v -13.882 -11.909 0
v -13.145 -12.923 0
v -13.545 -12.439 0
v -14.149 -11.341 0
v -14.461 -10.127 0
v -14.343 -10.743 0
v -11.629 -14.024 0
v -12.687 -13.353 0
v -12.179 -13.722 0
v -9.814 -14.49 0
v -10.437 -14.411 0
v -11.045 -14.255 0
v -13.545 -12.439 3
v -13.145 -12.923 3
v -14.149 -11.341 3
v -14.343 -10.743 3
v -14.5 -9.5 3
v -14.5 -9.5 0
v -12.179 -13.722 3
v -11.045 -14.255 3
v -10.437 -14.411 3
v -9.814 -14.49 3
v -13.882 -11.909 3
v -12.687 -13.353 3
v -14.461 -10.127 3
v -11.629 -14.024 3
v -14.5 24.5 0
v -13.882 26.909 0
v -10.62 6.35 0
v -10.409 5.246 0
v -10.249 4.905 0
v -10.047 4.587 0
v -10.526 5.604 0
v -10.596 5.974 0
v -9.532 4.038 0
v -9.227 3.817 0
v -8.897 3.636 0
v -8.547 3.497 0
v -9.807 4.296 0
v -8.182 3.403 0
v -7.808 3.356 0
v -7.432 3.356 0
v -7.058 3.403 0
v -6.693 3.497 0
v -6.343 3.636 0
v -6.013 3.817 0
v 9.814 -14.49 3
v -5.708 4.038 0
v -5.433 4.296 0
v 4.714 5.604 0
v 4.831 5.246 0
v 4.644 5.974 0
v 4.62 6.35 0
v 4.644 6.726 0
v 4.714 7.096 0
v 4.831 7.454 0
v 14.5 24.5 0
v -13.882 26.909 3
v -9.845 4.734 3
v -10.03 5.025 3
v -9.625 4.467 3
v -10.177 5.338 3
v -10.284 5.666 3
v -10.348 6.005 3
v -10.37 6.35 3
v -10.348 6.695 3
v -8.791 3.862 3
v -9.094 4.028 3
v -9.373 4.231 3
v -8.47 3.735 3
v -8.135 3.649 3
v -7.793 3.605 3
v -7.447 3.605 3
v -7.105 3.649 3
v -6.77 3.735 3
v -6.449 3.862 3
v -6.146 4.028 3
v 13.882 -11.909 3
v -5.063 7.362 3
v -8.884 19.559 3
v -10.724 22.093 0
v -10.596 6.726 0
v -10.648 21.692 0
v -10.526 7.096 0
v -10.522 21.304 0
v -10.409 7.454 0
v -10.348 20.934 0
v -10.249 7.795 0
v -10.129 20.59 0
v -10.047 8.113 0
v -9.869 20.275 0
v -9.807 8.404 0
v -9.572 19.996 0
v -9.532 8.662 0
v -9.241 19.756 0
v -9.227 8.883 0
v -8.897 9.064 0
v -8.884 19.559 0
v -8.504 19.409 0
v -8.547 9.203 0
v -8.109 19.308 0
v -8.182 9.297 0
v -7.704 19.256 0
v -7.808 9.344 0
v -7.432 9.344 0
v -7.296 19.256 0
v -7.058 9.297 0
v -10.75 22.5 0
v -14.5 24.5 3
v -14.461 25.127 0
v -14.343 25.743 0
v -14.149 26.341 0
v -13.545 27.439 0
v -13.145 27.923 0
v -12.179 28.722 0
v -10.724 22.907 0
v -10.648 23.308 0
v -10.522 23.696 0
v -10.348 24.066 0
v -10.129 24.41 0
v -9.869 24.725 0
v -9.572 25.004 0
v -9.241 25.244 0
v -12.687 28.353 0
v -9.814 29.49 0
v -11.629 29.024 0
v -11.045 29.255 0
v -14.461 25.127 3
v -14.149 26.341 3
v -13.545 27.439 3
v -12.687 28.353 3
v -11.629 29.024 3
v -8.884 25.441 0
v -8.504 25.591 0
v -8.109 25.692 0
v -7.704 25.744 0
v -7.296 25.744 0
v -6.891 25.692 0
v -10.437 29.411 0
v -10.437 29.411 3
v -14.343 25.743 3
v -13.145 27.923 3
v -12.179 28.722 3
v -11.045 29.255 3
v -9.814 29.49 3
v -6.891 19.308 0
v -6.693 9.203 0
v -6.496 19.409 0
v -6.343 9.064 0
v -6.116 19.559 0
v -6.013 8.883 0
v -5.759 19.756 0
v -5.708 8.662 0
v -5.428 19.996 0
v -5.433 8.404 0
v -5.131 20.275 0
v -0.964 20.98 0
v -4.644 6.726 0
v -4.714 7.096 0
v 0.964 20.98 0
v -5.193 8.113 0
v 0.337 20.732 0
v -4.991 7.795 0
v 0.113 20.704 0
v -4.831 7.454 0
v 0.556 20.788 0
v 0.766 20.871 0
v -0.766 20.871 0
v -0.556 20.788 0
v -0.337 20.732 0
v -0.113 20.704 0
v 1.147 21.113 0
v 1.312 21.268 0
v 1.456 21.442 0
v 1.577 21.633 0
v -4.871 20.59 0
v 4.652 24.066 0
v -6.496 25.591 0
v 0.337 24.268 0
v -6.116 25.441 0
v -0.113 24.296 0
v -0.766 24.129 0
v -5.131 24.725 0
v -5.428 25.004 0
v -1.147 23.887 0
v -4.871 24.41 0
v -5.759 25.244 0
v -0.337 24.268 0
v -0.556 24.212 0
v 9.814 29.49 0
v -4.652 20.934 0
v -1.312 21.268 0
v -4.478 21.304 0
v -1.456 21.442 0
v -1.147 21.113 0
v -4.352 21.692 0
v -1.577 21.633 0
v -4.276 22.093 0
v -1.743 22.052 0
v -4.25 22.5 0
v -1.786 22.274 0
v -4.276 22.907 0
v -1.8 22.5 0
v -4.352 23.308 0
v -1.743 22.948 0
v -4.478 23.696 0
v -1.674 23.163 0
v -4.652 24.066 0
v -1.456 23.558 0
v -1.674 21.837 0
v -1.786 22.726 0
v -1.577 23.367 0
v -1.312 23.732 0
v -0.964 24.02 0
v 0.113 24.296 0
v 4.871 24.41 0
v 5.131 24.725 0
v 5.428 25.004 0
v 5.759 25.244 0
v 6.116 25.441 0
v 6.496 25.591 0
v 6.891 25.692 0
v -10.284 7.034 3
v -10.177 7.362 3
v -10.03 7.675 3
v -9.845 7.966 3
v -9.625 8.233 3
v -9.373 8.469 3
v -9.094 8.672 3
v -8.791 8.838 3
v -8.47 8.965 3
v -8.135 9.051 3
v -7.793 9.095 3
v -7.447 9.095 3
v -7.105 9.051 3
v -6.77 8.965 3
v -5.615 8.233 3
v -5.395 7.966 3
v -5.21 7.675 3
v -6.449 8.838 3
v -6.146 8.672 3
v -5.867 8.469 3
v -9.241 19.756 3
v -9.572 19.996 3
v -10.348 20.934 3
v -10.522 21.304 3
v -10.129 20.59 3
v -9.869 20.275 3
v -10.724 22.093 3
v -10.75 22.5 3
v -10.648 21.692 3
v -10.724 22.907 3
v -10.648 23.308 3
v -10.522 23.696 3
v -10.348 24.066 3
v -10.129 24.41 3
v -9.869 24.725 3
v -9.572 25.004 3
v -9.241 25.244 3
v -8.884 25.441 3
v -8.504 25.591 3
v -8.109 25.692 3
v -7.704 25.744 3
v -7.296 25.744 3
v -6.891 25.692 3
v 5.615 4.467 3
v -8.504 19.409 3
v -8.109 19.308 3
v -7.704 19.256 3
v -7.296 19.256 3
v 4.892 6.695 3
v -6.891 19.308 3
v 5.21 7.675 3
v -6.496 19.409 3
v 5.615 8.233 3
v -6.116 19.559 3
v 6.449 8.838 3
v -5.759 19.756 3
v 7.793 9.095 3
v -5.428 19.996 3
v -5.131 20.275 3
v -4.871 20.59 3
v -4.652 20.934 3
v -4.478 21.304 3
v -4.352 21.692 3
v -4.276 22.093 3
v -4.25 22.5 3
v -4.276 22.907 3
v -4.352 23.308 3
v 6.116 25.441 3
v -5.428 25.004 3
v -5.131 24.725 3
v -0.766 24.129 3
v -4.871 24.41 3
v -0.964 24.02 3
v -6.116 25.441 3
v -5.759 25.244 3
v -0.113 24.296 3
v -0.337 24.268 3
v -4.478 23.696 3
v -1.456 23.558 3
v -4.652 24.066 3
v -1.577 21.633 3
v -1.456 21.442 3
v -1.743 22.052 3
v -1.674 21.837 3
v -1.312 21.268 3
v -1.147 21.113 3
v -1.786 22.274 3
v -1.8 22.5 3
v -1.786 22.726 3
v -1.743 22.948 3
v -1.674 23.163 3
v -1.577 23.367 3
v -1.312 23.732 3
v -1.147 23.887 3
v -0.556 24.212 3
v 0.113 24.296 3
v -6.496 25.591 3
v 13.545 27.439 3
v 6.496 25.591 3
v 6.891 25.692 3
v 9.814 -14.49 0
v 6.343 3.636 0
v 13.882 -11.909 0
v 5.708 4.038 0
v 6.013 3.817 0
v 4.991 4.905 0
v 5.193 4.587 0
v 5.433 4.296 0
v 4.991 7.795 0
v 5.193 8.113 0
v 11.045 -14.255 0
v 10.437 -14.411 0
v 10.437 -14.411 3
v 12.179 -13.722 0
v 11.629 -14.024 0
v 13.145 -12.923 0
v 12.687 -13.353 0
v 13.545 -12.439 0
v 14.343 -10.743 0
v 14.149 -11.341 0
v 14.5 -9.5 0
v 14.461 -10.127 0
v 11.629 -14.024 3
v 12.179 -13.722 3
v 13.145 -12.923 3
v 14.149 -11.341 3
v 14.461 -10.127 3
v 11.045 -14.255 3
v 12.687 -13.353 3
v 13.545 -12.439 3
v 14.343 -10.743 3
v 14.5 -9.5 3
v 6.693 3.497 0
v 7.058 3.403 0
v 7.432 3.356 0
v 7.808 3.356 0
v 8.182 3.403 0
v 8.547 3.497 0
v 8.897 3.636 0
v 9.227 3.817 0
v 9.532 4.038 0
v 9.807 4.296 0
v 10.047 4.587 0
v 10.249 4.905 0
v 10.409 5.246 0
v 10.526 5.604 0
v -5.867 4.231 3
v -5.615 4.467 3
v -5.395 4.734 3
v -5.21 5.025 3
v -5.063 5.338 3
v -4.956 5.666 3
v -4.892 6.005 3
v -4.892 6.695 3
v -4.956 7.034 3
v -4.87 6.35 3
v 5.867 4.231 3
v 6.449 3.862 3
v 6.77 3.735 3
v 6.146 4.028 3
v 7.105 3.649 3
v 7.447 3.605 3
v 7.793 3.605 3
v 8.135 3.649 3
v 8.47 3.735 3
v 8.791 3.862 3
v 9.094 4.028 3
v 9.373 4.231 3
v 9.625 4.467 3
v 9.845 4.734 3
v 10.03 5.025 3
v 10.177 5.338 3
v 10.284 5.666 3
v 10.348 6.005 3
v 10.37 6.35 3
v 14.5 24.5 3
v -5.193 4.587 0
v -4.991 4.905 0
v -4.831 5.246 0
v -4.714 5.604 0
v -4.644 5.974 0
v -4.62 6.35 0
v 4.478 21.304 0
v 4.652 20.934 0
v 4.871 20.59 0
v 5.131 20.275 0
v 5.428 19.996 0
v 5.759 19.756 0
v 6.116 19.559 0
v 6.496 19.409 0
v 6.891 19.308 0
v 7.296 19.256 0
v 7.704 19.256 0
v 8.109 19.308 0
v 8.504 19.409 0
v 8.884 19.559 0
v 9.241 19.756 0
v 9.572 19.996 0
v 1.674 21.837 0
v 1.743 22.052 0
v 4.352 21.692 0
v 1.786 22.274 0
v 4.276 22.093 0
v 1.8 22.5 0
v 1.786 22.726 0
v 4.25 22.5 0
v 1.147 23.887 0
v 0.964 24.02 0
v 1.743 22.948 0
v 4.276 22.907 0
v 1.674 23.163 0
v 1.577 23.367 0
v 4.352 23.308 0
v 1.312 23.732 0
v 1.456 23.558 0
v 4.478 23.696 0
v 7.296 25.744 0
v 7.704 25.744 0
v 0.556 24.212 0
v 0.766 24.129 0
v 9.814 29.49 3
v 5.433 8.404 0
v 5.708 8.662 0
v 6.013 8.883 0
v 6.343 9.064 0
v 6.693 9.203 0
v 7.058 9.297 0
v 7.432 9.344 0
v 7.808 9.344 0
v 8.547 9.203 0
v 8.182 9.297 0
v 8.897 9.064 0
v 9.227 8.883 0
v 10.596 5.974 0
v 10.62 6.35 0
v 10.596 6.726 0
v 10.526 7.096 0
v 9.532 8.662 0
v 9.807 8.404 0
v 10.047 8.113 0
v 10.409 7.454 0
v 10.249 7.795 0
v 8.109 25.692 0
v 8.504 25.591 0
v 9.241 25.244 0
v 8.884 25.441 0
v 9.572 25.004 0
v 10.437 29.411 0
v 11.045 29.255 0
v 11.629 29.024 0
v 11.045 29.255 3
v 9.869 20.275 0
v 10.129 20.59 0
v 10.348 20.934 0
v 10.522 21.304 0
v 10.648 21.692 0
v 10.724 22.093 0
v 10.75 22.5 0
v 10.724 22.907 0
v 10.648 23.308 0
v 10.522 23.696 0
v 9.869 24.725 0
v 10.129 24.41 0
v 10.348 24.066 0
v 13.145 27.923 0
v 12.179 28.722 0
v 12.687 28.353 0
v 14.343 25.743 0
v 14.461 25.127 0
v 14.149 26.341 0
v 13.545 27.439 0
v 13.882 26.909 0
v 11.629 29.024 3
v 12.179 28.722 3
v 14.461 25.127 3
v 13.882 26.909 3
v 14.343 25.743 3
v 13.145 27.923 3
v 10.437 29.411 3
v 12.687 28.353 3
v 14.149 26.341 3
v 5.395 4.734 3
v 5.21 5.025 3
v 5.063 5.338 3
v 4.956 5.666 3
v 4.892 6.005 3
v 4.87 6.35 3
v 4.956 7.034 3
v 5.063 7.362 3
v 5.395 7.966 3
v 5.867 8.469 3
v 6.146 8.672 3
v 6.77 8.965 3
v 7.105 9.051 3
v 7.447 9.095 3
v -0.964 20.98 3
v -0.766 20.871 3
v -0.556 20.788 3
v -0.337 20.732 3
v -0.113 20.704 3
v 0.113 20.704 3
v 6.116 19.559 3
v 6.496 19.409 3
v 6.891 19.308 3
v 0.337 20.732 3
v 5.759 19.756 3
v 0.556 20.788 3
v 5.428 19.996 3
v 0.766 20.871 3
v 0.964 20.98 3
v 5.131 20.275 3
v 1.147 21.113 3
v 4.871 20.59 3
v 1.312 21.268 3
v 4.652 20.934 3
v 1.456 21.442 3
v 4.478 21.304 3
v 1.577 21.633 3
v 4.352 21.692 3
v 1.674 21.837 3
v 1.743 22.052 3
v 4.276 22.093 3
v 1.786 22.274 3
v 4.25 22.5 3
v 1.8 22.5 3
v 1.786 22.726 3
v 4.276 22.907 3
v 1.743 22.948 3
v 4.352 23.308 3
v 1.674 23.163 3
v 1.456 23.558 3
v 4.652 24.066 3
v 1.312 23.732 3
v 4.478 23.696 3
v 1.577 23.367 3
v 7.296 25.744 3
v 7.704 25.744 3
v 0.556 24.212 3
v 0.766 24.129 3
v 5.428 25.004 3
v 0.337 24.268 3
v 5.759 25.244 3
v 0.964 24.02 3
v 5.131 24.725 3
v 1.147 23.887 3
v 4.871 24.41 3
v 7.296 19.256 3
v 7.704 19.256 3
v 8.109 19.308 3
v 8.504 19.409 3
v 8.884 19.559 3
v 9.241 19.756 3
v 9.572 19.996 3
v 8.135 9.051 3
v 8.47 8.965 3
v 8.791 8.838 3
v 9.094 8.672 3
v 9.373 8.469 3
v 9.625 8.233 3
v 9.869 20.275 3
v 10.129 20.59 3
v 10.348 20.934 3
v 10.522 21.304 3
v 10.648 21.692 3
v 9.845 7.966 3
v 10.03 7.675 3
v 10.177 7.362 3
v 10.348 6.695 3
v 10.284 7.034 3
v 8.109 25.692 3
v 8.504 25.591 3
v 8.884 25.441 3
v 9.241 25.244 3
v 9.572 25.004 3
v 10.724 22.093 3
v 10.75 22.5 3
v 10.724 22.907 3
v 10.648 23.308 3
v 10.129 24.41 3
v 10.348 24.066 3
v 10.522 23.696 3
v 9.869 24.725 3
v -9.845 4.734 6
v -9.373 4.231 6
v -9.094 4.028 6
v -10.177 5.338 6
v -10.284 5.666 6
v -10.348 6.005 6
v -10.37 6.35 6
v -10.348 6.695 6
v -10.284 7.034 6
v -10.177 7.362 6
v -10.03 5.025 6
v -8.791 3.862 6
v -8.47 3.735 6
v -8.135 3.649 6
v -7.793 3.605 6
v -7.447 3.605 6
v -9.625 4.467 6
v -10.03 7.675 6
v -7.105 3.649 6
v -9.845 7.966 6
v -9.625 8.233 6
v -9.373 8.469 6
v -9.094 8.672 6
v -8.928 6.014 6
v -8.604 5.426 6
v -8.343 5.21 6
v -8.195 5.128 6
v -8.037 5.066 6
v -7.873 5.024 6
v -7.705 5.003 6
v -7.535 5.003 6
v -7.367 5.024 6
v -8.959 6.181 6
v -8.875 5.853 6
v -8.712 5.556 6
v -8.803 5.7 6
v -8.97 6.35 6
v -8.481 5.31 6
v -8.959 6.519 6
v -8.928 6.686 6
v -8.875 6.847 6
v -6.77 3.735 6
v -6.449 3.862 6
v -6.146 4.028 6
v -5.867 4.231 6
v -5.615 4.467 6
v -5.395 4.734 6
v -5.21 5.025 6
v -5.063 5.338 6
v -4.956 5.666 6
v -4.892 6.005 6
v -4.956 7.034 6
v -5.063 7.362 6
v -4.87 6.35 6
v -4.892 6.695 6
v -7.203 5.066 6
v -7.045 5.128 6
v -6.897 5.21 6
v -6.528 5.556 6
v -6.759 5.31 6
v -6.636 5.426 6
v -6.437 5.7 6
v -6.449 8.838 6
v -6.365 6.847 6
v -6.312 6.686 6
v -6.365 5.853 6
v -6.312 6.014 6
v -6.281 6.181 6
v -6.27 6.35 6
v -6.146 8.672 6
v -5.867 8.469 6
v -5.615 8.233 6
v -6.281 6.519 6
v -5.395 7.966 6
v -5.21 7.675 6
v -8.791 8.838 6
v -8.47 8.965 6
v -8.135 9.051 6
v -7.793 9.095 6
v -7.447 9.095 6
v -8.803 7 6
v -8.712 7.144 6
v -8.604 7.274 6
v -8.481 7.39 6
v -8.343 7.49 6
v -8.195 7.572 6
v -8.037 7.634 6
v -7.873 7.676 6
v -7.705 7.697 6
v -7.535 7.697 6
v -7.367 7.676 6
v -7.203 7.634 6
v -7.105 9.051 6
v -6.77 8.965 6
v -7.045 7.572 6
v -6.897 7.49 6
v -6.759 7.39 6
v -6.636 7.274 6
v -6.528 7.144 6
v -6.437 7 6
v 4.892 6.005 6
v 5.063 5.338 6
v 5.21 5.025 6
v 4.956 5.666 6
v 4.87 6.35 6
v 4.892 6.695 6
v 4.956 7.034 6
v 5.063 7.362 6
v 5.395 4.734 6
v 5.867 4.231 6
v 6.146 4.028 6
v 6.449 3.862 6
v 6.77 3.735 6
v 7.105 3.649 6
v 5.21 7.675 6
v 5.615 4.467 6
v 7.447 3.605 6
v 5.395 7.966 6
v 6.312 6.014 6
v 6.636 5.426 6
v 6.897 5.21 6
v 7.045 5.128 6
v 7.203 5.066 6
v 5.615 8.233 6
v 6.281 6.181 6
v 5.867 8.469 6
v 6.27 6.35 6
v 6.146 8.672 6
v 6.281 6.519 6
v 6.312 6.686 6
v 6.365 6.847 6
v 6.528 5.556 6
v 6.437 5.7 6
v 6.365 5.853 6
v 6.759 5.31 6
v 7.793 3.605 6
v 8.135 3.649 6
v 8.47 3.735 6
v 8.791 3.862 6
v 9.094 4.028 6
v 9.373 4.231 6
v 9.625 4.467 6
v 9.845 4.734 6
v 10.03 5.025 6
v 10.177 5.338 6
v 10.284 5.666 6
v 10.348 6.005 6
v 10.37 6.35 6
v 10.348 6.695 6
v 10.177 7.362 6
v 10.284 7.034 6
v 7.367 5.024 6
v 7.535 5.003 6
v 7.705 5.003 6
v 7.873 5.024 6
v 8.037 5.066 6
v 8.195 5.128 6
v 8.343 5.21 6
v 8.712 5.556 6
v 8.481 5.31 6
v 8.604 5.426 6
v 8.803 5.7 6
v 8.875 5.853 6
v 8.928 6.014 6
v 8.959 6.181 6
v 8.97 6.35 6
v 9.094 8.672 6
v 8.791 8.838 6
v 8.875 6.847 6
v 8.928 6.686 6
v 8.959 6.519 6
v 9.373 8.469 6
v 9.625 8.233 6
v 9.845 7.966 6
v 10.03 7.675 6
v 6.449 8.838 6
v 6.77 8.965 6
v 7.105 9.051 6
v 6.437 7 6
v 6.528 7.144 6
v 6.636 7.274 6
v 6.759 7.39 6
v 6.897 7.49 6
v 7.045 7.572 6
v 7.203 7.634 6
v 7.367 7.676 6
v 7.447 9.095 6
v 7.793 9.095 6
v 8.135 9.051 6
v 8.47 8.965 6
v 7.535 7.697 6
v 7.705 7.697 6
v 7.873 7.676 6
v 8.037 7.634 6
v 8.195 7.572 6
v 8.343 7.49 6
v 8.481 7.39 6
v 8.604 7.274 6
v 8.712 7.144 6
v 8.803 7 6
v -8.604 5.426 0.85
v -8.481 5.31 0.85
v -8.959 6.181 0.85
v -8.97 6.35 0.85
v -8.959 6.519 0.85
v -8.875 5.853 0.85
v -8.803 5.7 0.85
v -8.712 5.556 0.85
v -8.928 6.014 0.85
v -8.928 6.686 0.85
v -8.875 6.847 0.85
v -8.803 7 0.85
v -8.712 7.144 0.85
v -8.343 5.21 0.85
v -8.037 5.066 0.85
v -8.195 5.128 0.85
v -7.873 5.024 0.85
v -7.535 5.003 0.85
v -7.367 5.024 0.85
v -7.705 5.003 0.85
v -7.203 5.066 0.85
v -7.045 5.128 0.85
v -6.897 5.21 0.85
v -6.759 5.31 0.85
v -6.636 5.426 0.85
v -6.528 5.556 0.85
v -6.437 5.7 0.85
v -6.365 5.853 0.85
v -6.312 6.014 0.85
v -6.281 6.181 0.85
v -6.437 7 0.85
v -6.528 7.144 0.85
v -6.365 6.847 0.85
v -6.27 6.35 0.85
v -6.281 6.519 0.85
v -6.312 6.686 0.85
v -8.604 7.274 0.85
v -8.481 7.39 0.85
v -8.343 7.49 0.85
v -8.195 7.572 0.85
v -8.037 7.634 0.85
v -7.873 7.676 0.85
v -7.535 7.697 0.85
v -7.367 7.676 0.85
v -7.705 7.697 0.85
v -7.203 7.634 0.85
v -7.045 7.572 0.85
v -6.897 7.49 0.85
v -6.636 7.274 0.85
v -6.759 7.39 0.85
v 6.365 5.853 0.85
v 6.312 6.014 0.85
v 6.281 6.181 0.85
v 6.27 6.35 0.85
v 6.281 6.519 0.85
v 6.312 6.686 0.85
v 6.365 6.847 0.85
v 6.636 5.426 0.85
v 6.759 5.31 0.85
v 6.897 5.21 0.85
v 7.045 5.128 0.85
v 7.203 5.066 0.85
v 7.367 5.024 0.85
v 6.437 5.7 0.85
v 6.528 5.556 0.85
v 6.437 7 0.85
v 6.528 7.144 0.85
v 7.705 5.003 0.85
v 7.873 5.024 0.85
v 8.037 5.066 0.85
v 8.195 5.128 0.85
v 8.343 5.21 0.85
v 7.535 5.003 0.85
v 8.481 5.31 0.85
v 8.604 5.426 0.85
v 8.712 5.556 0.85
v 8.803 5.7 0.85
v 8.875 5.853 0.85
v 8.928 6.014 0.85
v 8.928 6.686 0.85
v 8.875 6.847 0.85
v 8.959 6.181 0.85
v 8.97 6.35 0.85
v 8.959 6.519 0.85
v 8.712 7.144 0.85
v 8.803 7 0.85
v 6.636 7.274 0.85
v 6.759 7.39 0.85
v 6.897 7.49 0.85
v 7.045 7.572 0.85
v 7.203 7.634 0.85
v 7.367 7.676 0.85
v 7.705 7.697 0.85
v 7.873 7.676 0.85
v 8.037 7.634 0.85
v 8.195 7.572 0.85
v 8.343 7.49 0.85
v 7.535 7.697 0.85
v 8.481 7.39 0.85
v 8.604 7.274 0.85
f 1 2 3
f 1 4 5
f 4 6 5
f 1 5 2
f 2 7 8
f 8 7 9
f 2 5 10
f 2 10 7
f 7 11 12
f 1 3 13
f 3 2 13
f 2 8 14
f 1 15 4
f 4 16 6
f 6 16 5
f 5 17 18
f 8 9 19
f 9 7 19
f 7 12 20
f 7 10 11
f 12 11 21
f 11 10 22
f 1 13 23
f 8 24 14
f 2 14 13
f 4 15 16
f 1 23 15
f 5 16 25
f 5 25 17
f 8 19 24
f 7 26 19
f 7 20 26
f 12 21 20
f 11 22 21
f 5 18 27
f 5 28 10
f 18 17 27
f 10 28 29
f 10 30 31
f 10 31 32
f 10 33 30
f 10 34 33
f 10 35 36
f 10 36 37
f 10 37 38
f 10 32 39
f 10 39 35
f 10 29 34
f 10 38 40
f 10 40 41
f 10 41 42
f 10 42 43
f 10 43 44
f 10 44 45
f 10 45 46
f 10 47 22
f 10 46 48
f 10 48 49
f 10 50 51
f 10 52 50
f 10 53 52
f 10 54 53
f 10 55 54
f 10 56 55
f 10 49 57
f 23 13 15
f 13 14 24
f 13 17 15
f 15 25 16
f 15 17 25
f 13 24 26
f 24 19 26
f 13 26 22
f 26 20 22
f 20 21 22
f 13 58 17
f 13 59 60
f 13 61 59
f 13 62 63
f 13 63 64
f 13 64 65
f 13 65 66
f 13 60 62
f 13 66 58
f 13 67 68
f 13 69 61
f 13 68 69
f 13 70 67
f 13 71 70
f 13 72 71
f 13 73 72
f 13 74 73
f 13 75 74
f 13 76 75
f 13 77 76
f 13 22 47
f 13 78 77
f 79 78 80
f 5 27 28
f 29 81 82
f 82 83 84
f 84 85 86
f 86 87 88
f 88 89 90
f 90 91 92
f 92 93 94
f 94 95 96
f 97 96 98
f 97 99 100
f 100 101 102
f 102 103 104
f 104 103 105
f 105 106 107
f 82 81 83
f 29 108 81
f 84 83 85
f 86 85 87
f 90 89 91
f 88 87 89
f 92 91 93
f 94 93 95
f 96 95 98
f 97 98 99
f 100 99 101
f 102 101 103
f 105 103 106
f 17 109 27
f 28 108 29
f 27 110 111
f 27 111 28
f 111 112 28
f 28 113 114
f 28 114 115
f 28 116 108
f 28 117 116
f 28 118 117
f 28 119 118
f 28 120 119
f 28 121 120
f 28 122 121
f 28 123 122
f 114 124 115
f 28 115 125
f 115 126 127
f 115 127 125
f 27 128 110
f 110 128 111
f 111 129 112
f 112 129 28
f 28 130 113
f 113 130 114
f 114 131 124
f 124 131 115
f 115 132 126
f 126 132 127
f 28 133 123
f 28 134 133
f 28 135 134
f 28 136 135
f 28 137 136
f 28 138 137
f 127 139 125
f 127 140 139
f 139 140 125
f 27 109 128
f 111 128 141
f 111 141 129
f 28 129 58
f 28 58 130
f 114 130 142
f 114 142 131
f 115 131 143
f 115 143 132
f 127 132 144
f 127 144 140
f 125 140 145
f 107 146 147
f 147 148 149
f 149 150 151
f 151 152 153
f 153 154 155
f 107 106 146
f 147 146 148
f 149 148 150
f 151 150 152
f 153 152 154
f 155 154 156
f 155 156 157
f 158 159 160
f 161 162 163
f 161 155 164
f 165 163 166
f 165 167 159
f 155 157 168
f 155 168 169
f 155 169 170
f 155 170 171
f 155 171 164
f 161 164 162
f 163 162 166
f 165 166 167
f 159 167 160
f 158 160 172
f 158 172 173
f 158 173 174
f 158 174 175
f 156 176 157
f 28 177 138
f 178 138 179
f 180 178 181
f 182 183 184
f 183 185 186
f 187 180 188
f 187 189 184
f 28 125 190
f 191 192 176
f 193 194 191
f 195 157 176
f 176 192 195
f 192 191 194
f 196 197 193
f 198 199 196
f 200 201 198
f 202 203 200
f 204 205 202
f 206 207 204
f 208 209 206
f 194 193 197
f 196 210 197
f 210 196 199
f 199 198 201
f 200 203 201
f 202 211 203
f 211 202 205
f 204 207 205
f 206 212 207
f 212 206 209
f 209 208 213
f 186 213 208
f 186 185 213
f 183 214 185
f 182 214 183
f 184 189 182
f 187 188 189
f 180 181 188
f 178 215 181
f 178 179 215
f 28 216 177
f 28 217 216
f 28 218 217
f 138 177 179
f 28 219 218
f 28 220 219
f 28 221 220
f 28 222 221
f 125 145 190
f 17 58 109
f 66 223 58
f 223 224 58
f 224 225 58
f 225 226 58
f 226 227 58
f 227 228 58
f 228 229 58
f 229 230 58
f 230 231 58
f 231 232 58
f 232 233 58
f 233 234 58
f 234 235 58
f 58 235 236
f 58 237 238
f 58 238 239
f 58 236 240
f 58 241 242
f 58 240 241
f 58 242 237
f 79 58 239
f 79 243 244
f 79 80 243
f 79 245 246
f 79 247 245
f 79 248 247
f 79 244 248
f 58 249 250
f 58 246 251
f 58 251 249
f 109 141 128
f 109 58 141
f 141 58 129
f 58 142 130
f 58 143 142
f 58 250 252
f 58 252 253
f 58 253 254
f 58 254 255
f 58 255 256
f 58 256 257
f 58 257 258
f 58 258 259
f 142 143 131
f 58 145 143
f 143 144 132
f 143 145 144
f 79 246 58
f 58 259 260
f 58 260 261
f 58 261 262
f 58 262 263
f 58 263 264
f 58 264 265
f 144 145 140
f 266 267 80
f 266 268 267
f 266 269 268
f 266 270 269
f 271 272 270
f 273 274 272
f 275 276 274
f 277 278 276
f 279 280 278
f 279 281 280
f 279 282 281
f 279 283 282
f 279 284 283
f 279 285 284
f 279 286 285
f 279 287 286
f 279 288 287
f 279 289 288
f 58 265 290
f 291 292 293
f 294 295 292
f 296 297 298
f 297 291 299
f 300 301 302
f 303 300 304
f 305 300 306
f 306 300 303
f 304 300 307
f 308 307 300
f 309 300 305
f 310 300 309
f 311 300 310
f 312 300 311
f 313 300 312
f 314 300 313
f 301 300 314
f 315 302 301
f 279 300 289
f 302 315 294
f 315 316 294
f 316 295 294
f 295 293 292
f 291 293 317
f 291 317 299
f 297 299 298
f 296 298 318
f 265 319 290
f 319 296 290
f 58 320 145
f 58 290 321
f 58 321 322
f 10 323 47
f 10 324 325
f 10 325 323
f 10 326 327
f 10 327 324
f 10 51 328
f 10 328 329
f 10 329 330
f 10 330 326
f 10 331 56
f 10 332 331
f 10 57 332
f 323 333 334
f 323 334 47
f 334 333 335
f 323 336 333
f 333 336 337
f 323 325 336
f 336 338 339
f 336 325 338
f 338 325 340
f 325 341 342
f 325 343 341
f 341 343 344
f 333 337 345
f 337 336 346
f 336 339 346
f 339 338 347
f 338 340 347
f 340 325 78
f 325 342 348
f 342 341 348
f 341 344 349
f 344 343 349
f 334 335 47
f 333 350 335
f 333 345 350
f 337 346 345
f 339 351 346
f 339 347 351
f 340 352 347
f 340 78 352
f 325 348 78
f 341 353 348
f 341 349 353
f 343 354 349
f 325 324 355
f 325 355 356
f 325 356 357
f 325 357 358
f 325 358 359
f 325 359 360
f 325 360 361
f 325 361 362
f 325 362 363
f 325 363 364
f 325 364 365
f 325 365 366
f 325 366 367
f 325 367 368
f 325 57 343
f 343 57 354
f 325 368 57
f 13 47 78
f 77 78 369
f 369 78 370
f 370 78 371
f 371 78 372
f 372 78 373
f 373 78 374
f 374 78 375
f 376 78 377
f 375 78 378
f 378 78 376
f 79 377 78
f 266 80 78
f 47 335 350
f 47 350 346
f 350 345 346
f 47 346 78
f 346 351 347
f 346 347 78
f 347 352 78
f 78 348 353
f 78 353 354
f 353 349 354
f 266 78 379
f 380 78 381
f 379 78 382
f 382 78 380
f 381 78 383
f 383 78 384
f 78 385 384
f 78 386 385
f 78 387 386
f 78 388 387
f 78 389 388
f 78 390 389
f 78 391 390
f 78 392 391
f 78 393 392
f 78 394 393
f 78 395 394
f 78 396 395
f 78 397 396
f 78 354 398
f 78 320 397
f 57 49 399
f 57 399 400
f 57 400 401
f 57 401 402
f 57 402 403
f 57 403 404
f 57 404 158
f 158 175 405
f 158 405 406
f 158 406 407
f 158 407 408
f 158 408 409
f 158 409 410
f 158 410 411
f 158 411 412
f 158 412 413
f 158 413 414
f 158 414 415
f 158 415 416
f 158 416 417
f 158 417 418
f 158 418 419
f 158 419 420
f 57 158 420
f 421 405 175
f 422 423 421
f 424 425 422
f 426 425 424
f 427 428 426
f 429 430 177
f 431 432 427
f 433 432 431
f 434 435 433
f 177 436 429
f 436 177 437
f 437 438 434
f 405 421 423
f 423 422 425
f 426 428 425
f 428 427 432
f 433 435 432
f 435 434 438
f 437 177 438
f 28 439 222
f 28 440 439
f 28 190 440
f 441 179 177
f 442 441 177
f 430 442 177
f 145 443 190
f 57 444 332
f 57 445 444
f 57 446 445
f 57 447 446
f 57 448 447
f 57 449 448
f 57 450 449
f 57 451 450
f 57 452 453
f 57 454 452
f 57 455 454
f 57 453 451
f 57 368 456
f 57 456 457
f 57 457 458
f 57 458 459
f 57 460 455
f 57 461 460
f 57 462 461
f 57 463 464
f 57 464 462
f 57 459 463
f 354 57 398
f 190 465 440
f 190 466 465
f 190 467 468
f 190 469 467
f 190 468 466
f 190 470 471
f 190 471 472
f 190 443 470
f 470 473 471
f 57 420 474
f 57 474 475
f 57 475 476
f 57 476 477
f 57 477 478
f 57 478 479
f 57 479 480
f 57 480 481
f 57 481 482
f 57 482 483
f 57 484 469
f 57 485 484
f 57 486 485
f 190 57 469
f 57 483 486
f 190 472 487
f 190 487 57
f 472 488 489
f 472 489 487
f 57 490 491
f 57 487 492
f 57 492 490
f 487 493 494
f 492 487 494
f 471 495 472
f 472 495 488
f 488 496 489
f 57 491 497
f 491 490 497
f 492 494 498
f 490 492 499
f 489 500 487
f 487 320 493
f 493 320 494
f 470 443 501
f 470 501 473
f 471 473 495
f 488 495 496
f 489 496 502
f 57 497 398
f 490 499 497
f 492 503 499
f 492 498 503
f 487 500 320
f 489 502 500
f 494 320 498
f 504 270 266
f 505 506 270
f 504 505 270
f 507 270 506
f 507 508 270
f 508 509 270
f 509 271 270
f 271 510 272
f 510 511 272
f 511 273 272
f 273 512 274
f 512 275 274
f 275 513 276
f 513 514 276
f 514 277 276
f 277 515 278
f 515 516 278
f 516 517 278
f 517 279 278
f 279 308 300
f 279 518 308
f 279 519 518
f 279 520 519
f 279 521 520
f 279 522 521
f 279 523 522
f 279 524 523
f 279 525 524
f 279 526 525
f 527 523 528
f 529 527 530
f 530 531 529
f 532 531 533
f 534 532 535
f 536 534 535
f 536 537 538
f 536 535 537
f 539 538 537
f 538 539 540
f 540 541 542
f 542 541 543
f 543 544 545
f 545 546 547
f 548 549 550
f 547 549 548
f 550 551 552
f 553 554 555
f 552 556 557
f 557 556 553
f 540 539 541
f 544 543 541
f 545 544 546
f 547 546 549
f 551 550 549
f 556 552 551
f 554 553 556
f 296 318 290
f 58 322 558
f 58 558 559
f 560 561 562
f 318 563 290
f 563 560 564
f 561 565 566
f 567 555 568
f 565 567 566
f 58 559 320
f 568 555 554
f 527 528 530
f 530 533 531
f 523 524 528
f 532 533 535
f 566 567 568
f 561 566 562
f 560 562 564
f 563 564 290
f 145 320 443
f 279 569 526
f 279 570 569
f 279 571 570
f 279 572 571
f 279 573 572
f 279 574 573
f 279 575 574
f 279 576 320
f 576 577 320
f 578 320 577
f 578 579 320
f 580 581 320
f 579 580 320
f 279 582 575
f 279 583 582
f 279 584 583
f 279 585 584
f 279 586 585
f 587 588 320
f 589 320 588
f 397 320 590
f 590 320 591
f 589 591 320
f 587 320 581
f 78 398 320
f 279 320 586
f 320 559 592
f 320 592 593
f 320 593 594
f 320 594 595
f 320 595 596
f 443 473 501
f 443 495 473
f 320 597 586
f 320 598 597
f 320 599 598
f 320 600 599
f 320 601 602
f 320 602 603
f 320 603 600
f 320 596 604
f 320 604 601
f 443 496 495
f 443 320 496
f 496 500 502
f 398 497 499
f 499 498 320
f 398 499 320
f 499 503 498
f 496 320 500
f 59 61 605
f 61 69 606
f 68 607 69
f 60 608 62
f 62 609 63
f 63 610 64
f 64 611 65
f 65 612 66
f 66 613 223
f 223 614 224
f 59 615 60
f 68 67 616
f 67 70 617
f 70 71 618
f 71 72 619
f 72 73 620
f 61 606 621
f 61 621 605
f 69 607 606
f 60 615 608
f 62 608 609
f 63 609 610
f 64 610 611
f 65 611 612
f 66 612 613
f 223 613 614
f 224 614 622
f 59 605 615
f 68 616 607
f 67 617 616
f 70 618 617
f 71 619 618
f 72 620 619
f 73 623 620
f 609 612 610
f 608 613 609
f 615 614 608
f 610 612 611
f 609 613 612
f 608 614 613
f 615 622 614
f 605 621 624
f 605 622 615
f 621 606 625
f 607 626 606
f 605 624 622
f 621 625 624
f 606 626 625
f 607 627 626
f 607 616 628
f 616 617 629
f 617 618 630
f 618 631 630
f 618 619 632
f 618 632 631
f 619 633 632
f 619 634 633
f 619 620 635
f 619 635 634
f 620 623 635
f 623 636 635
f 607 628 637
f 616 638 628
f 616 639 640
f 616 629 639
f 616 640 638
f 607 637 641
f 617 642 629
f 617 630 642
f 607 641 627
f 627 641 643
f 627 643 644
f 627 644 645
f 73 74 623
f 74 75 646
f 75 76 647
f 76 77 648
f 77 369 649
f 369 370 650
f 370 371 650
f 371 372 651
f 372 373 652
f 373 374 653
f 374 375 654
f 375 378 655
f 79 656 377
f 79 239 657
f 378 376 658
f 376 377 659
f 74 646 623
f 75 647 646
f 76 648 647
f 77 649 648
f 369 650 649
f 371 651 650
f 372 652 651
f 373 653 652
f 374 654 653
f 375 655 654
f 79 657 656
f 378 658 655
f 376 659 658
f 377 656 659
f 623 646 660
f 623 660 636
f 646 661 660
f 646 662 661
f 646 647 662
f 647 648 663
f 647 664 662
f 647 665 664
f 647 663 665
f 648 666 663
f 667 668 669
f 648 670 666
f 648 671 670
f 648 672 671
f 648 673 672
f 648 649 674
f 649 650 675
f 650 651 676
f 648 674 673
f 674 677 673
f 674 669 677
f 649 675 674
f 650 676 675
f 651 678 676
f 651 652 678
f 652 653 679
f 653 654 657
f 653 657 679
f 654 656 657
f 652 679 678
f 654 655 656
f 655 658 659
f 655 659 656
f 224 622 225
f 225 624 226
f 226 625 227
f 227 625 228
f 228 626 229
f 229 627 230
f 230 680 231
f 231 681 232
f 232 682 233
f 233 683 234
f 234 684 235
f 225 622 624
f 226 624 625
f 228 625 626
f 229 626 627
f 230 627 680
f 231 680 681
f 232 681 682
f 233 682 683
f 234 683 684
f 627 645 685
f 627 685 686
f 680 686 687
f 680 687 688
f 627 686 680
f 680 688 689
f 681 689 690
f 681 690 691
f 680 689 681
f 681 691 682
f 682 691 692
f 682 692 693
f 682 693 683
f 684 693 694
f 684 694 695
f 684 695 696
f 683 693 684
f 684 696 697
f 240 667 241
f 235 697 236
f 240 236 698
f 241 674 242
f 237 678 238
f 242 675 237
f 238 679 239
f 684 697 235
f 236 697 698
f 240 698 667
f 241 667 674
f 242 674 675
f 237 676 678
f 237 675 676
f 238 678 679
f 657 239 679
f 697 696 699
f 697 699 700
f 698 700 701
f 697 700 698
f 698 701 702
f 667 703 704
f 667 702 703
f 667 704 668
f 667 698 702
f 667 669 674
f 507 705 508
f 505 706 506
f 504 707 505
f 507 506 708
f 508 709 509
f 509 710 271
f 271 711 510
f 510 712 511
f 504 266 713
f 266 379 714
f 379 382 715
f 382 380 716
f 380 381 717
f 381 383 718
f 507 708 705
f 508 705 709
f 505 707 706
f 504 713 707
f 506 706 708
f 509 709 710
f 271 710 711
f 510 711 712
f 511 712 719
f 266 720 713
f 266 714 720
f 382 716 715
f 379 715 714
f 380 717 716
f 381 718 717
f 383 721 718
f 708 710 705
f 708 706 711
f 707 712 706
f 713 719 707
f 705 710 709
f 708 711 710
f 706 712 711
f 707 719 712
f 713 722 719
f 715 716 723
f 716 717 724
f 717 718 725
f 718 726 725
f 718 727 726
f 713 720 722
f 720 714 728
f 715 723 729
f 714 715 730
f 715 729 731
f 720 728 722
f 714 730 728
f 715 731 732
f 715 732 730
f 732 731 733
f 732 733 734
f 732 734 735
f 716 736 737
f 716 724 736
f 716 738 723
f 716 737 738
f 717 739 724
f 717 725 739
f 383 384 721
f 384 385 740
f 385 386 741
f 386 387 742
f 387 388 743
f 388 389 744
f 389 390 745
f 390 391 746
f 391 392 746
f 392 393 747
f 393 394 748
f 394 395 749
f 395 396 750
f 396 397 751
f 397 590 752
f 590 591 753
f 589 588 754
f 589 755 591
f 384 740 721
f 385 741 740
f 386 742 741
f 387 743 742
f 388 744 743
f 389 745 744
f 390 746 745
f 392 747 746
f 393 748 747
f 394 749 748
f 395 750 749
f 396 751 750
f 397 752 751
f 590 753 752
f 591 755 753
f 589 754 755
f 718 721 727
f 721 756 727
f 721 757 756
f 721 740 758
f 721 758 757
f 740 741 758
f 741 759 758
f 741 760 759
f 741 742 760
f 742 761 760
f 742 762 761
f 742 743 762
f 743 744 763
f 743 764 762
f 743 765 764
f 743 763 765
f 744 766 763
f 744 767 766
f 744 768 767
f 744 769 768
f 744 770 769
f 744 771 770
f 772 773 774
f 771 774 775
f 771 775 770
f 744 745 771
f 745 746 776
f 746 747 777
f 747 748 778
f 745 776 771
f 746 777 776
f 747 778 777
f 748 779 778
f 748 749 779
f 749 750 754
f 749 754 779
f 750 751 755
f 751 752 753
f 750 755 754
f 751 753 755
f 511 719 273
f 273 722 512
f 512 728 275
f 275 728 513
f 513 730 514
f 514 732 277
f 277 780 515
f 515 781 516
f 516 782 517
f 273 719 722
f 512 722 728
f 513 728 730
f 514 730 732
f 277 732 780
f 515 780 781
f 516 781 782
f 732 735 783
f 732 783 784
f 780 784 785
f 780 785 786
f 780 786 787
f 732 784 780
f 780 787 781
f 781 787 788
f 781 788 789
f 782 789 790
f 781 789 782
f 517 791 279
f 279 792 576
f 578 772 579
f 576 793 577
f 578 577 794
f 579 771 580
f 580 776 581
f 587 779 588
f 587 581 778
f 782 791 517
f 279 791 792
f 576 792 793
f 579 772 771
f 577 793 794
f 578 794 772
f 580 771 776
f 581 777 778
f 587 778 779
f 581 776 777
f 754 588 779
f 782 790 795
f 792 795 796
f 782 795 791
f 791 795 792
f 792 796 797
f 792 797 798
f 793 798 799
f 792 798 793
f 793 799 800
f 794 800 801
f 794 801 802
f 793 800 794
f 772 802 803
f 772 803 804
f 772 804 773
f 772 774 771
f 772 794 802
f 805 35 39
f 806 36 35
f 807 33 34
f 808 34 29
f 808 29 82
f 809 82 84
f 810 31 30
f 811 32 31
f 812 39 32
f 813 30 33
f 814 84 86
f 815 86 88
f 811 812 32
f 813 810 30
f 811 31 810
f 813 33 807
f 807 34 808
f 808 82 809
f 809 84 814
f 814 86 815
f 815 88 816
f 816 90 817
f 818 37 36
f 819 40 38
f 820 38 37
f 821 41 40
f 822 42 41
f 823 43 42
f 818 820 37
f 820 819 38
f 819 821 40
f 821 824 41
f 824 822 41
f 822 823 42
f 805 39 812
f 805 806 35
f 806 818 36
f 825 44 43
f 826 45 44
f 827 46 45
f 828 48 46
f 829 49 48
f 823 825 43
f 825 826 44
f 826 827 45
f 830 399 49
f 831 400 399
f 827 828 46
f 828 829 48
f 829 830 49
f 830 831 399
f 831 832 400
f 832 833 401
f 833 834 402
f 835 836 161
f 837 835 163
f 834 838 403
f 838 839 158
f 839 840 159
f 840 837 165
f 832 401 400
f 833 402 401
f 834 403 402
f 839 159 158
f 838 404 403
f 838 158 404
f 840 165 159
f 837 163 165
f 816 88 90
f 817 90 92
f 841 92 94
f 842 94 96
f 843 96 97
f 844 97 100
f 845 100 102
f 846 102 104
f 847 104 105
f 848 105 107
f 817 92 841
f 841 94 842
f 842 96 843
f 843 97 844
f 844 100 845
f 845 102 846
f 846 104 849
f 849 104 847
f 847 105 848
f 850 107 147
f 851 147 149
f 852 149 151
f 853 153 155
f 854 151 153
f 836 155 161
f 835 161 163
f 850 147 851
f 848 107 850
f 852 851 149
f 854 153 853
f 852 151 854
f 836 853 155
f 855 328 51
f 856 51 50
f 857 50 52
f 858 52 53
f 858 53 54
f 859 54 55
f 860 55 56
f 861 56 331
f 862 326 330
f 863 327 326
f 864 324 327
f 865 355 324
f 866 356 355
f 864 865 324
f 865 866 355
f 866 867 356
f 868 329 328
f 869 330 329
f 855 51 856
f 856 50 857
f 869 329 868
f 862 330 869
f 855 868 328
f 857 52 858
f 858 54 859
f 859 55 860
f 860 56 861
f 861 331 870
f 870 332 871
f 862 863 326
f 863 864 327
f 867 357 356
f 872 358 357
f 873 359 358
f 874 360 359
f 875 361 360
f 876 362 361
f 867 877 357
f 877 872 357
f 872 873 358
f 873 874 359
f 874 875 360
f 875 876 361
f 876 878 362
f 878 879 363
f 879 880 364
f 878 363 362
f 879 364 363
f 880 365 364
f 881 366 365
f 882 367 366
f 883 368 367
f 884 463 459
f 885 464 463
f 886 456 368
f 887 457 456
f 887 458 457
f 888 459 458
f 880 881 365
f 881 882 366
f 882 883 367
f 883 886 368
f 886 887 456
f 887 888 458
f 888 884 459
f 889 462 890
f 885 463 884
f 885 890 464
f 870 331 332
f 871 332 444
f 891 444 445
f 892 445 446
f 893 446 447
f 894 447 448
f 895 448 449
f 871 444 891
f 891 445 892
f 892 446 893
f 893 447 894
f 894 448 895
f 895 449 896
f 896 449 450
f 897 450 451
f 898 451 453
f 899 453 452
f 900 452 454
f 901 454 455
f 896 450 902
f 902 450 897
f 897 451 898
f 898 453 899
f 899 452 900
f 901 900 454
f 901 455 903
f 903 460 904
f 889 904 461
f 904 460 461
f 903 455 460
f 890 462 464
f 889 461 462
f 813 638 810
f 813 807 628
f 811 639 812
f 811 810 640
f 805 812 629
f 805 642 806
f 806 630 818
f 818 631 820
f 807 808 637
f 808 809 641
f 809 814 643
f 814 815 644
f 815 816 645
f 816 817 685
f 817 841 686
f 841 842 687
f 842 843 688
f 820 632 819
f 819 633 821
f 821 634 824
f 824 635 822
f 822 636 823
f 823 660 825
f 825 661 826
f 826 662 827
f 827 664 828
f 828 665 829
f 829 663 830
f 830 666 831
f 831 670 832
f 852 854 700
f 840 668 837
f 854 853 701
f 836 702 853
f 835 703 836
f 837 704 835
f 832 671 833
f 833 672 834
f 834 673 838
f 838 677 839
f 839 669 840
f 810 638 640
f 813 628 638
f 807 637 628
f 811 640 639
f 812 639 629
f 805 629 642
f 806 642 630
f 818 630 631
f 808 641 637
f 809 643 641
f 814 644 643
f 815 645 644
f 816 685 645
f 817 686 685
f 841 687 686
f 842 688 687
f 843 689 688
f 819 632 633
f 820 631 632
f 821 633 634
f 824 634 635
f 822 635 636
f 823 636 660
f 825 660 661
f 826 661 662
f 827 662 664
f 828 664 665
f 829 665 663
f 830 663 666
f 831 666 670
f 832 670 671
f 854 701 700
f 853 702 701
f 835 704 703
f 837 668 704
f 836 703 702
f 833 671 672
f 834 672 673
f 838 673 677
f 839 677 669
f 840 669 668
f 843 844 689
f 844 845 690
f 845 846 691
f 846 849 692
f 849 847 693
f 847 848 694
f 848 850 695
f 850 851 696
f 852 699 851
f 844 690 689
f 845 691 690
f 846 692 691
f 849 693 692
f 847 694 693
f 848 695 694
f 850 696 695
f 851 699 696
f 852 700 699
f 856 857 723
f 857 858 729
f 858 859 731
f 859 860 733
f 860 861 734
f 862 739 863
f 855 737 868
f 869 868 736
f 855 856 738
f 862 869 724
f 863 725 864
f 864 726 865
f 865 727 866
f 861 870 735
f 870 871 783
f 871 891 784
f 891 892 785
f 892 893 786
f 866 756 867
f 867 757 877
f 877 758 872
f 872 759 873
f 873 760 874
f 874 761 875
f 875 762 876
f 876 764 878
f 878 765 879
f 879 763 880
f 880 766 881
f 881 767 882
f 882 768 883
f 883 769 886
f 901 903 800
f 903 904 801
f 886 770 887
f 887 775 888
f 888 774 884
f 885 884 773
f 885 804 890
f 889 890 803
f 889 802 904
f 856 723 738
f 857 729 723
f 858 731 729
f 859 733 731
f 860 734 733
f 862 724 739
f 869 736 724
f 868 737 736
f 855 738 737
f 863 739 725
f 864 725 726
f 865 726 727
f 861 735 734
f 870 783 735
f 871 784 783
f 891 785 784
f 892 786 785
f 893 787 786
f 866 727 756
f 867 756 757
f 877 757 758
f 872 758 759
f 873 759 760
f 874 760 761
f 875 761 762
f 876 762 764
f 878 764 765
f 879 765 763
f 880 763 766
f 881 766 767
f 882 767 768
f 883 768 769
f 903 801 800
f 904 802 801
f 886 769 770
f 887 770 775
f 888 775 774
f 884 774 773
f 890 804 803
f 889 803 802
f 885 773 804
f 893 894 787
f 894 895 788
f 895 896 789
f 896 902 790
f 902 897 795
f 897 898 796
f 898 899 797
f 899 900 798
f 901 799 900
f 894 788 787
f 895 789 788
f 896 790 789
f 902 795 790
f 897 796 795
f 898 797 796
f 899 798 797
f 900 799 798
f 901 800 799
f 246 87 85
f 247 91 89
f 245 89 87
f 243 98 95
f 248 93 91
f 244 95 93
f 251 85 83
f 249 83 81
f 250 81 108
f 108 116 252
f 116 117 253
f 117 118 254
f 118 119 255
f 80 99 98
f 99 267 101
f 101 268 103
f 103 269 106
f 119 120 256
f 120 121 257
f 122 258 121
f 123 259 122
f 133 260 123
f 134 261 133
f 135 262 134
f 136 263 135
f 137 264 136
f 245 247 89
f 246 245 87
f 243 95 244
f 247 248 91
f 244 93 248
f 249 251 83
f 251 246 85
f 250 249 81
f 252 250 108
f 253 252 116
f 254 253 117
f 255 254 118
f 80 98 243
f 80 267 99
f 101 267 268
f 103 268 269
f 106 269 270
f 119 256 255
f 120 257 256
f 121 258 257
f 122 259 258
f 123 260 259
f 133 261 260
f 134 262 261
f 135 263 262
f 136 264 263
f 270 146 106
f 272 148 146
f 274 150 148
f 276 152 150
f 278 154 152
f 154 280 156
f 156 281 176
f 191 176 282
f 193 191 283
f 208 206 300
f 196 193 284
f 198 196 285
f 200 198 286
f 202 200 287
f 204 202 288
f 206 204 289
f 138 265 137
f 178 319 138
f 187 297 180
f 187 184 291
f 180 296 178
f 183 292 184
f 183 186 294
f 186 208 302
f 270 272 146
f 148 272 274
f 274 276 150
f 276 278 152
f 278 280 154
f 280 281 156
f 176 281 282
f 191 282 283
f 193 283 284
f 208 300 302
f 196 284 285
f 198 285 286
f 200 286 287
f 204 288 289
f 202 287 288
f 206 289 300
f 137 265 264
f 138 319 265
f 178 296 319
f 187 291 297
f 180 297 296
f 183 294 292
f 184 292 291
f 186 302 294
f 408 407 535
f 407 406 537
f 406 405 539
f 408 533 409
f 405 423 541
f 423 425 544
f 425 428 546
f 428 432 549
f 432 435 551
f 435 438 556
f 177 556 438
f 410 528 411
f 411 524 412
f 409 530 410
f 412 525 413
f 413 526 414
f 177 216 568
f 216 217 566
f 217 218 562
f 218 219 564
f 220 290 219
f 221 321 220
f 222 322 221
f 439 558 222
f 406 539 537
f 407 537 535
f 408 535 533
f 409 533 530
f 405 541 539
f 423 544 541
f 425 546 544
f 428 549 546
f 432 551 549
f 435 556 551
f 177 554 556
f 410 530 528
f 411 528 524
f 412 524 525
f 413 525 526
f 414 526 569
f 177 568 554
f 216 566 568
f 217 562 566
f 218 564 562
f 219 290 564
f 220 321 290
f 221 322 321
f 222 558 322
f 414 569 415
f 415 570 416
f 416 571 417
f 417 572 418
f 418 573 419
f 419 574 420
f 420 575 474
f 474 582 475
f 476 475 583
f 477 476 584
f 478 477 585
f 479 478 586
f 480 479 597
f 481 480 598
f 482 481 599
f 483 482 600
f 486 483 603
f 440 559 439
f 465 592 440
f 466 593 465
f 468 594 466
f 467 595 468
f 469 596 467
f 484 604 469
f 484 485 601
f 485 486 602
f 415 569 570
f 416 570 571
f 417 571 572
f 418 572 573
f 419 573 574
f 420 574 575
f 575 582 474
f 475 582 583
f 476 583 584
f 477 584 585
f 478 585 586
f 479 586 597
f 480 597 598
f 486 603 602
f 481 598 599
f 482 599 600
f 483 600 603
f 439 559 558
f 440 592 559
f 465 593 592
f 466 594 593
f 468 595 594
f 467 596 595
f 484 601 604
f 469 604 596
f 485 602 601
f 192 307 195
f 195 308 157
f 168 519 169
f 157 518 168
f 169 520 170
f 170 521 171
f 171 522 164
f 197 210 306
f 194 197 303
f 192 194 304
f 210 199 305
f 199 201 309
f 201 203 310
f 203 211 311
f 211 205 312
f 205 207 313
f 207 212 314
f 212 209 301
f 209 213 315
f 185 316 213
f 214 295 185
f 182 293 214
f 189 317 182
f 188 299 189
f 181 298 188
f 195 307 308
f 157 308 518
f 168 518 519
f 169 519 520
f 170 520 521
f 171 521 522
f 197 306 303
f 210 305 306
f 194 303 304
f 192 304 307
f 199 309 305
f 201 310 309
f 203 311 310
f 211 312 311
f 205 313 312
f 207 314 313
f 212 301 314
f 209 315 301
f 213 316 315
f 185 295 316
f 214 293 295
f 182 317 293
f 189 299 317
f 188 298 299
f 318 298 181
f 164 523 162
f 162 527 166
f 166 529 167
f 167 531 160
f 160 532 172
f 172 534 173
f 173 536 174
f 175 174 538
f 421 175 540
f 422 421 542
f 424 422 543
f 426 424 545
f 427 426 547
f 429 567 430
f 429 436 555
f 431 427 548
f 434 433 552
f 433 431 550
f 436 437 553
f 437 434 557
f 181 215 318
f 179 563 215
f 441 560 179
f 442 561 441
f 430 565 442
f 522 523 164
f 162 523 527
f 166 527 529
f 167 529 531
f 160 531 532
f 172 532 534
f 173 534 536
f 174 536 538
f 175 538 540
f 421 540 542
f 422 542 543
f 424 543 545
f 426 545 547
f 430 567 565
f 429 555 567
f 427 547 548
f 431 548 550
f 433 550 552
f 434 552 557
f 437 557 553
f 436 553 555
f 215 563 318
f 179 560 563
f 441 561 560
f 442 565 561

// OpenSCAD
$fn = 50;

difference() {
	union() {
		translate(v = [0.0, 7.5, 0]) {
			hull() {
				translate(v = [-9.5, 17.0, 0]) {
					cylinder(h = 3, r = 5);
				}
				translate(v = [9.5, 17.0, 0]) {
					cylinder(h = 3, r = 5);
				}
				translate(v = [-9.5, -17.0, 0]) {
					cylinder(h = 3, r = 5);
				}
				translate(v = [9.5, -17.0, 0]) {
					cylinder(h = 3, r = 5);
				}
			}
		}
		translate(v = [-7.62, 6.35, 3.0]) {
			cylinder(h = 3, r = 2.75);
		}
		translate(v = [7.62, 6.35, 3.0]) {
			cylinder(h = 3, r = 2.75);
		}
	}
	union() {
		translate(v = [-7.62, 6.35, 0]) {
			rotate(a = [0, 180, 0]) {
				difference() {
					union() {
						translate(v = [0, 0, -6.0]) {
							cylinder(h = 6, r = 1.0);
						}
						translate(v = [0, 0, -0.85]) {
							cylinder(h = 0.85, r1 = 1.35, r2 = 3.0);
						}
						translate(v = [0, 0, -6.0]) {
							cylinder(h = 6, r = 1.35);
						}
						translate(v = [0, 0, -6.0]) {
							cylinder(h = 6, r = 1.0);
						}
					}
					union();
				}
			}
		}
		translate(v = [7.62, 6.35, 0]) {
			rotate(a = [0, 180, 0]) {
				difference() {
					union() {
						translate(v = [0, 0, -6.0]) {
							cylinder(h = 6, r = 1.0);
						}
						translate(v = [0, 0, -0.85]) {
							cylinder(h = 0.85, r1 = 1.35, r2 = 3.0);
						}
						translate(v = [0, 0, -6.0]) {
							cylinder(h = 6, r = 1.35);
						}
						translate(v = [0, 0, -6.0]) {
							cylinder(h = 6, r = 1.0);
						}
					}
					union();
				}
			}
		}
		translate(v = [-7.5, 22.5, -1]) {
			cylinder(h = 5, r = 3.25);
		}
		translate(v = [7.5, 22.5, -1]) {
			cylinder(h = 5, r = 3.25);
		}
		translate(v = [0.0, 22.5, -1]) {
			cylinder(h = 5, r = 1.8);
		}
	}
}
